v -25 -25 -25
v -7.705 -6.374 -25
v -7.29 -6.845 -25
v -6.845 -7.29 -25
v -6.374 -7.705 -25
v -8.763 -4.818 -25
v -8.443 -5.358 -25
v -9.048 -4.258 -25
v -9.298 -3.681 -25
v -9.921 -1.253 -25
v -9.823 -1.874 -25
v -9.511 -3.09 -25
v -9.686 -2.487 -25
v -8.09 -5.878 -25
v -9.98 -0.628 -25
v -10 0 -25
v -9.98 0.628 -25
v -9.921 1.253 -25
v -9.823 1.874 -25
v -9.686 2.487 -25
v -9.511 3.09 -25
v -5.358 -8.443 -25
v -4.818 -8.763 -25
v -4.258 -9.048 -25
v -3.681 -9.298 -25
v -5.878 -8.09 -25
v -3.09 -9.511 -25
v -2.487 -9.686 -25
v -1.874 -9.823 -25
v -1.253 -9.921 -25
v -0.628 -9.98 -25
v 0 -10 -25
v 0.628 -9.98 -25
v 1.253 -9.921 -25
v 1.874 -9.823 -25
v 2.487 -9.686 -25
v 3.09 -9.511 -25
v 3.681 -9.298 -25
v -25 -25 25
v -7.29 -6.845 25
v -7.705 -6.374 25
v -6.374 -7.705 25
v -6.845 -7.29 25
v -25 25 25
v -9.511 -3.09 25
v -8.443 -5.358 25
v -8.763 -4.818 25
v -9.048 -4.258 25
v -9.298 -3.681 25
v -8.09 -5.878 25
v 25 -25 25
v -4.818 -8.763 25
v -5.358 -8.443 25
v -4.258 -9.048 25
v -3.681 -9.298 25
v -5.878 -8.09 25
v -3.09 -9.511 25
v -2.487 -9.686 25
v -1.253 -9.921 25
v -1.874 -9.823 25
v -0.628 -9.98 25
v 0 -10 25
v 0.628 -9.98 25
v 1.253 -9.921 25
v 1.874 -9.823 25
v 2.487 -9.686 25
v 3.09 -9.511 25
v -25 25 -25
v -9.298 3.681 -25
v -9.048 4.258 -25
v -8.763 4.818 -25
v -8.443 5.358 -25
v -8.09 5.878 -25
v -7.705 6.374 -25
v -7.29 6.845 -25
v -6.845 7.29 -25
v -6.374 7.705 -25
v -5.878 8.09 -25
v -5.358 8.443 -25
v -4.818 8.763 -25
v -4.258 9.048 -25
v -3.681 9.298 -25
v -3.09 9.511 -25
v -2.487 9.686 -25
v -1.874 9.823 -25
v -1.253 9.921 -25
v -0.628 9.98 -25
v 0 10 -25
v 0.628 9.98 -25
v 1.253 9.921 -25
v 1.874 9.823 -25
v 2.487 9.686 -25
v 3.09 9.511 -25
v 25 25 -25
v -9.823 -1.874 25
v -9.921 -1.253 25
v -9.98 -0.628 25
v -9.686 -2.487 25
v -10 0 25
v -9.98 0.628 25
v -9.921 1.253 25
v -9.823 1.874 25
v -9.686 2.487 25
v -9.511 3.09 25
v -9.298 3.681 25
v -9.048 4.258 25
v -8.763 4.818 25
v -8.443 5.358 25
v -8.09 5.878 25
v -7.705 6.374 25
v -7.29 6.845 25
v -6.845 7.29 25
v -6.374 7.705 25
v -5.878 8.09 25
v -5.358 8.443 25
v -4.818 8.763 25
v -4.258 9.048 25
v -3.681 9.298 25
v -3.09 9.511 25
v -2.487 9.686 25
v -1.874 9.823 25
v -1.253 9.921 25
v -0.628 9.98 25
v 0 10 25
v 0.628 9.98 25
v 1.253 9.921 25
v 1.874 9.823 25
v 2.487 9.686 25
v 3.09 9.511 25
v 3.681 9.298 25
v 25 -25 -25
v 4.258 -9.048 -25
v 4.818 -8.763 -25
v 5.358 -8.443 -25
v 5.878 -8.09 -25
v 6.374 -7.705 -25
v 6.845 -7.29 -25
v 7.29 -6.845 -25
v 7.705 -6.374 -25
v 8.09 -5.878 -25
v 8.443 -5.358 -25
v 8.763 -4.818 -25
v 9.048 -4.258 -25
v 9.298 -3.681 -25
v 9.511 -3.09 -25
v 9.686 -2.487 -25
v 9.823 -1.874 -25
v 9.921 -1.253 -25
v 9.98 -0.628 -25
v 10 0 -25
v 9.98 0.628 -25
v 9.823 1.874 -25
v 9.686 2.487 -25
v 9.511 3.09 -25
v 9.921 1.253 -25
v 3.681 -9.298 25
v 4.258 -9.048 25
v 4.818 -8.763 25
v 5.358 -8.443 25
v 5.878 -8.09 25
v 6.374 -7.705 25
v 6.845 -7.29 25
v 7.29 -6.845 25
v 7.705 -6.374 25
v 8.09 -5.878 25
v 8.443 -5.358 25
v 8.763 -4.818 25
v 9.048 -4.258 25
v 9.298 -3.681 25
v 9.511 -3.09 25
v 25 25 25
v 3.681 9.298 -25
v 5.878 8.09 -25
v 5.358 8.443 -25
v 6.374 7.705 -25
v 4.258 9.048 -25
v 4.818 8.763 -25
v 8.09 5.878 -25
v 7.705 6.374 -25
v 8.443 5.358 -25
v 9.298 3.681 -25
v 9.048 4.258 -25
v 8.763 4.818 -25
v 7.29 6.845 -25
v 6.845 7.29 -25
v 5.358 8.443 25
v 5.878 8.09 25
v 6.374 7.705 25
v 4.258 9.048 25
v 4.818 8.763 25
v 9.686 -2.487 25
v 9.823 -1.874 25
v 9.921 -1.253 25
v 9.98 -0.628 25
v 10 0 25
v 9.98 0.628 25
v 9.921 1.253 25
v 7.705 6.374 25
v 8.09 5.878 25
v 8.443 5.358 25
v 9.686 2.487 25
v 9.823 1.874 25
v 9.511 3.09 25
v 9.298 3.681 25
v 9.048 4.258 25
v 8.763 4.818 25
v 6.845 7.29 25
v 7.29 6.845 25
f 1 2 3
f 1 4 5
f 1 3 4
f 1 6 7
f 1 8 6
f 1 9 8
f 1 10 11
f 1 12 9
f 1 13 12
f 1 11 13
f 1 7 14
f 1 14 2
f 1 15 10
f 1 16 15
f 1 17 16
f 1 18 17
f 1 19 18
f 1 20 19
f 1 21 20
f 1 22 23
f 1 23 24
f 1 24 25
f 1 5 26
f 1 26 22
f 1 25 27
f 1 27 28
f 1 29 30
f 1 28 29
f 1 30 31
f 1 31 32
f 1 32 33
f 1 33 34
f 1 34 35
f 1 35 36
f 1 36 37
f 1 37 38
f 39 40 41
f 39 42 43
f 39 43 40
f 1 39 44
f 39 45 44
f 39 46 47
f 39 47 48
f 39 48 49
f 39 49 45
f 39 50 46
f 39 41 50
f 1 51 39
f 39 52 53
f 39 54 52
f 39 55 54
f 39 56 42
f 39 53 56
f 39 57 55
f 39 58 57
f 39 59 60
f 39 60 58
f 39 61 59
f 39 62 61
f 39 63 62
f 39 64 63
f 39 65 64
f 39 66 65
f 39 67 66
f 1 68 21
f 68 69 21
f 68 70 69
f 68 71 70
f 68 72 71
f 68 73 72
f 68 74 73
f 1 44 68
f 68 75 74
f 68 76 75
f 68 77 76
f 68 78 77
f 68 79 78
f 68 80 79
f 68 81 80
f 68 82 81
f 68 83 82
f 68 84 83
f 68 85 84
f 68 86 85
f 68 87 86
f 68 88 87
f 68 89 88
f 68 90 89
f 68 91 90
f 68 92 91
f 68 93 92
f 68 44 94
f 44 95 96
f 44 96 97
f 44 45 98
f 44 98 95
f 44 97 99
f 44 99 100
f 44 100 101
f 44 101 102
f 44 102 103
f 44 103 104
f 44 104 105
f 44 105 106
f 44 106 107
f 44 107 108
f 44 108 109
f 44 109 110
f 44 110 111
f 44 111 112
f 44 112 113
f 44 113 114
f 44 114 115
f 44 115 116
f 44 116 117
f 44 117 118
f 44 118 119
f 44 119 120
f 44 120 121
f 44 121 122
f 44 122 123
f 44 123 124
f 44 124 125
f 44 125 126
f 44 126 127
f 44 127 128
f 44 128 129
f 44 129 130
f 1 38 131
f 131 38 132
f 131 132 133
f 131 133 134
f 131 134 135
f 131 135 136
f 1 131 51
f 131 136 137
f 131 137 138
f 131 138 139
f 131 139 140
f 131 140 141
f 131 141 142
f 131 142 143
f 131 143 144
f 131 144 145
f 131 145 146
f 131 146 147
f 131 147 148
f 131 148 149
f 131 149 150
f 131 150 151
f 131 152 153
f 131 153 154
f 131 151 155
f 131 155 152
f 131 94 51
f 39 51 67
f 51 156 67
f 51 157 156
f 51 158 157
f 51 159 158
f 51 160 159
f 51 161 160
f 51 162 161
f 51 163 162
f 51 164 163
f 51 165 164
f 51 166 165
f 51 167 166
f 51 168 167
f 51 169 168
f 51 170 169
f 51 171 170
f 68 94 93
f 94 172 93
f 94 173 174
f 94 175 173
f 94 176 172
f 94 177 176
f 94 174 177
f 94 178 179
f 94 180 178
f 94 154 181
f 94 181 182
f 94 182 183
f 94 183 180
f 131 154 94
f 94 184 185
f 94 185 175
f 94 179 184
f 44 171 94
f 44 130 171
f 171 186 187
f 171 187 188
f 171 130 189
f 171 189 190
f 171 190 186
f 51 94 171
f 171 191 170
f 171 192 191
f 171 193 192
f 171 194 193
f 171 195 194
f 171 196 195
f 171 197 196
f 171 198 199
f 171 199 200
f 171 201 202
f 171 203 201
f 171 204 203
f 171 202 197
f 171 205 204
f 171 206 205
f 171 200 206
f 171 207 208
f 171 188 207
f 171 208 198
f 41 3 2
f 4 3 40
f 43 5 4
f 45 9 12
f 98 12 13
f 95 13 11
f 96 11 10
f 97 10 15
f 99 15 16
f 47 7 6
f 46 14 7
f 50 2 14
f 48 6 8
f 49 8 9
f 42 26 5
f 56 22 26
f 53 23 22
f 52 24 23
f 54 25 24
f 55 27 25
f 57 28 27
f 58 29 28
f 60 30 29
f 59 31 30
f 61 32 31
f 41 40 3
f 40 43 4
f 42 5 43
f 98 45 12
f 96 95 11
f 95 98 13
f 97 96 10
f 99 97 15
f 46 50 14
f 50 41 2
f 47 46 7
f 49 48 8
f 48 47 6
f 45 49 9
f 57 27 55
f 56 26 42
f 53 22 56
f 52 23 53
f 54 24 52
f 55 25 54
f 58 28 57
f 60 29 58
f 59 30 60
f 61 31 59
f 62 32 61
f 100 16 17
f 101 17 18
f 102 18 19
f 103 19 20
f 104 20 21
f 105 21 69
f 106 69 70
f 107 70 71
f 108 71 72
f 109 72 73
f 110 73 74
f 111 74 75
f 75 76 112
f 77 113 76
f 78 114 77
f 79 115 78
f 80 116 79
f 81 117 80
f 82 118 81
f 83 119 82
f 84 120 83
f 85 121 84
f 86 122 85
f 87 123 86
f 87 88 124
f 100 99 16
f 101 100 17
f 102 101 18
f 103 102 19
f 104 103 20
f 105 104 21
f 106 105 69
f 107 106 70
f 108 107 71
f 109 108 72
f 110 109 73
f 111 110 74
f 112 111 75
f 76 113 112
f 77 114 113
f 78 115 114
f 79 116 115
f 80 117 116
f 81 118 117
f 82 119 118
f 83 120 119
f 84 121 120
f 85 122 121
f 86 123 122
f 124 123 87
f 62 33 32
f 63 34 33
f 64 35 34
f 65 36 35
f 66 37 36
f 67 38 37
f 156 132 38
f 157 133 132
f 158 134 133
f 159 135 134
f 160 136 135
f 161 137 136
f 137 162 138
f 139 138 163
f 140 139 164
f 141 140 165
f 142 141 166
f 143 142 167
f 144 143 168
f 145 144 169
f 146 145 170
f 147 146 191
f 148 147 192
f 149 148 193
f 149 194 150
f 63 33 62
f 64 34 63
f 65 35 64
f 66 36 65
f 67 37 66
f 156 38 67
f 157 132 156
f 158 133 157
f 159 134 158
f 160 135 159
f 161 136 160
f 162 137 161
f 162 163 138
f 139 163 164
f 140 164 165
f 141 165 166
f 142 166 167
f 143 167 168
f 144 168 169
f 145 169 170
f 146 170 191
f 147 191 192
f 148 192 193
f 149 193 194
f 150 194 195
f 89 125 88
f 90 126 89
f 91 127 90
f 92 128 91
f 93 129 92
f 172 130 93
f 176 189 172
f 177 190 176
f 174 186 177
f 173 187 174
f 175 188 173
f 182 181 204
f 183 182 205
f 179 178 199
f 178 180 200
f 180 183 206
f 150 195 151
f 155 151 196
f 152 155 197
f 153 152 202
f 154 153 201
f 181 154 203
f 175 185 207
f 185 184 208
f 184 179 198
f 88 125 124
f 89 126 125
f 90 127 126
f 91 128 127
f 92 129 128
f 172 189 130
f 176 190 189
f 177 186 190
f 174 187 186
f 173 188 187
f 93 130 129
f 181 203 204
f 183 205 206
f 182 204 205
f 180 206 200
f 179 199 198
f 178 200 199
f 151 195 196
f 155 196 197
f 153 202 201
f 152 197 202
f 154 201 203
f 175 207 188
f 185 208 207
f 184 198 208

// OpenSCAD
difference() {
    cube([50, 50, 50], center = true);
    cylinder(h = 60, r = 10, center = true, $fn = 100);
}
